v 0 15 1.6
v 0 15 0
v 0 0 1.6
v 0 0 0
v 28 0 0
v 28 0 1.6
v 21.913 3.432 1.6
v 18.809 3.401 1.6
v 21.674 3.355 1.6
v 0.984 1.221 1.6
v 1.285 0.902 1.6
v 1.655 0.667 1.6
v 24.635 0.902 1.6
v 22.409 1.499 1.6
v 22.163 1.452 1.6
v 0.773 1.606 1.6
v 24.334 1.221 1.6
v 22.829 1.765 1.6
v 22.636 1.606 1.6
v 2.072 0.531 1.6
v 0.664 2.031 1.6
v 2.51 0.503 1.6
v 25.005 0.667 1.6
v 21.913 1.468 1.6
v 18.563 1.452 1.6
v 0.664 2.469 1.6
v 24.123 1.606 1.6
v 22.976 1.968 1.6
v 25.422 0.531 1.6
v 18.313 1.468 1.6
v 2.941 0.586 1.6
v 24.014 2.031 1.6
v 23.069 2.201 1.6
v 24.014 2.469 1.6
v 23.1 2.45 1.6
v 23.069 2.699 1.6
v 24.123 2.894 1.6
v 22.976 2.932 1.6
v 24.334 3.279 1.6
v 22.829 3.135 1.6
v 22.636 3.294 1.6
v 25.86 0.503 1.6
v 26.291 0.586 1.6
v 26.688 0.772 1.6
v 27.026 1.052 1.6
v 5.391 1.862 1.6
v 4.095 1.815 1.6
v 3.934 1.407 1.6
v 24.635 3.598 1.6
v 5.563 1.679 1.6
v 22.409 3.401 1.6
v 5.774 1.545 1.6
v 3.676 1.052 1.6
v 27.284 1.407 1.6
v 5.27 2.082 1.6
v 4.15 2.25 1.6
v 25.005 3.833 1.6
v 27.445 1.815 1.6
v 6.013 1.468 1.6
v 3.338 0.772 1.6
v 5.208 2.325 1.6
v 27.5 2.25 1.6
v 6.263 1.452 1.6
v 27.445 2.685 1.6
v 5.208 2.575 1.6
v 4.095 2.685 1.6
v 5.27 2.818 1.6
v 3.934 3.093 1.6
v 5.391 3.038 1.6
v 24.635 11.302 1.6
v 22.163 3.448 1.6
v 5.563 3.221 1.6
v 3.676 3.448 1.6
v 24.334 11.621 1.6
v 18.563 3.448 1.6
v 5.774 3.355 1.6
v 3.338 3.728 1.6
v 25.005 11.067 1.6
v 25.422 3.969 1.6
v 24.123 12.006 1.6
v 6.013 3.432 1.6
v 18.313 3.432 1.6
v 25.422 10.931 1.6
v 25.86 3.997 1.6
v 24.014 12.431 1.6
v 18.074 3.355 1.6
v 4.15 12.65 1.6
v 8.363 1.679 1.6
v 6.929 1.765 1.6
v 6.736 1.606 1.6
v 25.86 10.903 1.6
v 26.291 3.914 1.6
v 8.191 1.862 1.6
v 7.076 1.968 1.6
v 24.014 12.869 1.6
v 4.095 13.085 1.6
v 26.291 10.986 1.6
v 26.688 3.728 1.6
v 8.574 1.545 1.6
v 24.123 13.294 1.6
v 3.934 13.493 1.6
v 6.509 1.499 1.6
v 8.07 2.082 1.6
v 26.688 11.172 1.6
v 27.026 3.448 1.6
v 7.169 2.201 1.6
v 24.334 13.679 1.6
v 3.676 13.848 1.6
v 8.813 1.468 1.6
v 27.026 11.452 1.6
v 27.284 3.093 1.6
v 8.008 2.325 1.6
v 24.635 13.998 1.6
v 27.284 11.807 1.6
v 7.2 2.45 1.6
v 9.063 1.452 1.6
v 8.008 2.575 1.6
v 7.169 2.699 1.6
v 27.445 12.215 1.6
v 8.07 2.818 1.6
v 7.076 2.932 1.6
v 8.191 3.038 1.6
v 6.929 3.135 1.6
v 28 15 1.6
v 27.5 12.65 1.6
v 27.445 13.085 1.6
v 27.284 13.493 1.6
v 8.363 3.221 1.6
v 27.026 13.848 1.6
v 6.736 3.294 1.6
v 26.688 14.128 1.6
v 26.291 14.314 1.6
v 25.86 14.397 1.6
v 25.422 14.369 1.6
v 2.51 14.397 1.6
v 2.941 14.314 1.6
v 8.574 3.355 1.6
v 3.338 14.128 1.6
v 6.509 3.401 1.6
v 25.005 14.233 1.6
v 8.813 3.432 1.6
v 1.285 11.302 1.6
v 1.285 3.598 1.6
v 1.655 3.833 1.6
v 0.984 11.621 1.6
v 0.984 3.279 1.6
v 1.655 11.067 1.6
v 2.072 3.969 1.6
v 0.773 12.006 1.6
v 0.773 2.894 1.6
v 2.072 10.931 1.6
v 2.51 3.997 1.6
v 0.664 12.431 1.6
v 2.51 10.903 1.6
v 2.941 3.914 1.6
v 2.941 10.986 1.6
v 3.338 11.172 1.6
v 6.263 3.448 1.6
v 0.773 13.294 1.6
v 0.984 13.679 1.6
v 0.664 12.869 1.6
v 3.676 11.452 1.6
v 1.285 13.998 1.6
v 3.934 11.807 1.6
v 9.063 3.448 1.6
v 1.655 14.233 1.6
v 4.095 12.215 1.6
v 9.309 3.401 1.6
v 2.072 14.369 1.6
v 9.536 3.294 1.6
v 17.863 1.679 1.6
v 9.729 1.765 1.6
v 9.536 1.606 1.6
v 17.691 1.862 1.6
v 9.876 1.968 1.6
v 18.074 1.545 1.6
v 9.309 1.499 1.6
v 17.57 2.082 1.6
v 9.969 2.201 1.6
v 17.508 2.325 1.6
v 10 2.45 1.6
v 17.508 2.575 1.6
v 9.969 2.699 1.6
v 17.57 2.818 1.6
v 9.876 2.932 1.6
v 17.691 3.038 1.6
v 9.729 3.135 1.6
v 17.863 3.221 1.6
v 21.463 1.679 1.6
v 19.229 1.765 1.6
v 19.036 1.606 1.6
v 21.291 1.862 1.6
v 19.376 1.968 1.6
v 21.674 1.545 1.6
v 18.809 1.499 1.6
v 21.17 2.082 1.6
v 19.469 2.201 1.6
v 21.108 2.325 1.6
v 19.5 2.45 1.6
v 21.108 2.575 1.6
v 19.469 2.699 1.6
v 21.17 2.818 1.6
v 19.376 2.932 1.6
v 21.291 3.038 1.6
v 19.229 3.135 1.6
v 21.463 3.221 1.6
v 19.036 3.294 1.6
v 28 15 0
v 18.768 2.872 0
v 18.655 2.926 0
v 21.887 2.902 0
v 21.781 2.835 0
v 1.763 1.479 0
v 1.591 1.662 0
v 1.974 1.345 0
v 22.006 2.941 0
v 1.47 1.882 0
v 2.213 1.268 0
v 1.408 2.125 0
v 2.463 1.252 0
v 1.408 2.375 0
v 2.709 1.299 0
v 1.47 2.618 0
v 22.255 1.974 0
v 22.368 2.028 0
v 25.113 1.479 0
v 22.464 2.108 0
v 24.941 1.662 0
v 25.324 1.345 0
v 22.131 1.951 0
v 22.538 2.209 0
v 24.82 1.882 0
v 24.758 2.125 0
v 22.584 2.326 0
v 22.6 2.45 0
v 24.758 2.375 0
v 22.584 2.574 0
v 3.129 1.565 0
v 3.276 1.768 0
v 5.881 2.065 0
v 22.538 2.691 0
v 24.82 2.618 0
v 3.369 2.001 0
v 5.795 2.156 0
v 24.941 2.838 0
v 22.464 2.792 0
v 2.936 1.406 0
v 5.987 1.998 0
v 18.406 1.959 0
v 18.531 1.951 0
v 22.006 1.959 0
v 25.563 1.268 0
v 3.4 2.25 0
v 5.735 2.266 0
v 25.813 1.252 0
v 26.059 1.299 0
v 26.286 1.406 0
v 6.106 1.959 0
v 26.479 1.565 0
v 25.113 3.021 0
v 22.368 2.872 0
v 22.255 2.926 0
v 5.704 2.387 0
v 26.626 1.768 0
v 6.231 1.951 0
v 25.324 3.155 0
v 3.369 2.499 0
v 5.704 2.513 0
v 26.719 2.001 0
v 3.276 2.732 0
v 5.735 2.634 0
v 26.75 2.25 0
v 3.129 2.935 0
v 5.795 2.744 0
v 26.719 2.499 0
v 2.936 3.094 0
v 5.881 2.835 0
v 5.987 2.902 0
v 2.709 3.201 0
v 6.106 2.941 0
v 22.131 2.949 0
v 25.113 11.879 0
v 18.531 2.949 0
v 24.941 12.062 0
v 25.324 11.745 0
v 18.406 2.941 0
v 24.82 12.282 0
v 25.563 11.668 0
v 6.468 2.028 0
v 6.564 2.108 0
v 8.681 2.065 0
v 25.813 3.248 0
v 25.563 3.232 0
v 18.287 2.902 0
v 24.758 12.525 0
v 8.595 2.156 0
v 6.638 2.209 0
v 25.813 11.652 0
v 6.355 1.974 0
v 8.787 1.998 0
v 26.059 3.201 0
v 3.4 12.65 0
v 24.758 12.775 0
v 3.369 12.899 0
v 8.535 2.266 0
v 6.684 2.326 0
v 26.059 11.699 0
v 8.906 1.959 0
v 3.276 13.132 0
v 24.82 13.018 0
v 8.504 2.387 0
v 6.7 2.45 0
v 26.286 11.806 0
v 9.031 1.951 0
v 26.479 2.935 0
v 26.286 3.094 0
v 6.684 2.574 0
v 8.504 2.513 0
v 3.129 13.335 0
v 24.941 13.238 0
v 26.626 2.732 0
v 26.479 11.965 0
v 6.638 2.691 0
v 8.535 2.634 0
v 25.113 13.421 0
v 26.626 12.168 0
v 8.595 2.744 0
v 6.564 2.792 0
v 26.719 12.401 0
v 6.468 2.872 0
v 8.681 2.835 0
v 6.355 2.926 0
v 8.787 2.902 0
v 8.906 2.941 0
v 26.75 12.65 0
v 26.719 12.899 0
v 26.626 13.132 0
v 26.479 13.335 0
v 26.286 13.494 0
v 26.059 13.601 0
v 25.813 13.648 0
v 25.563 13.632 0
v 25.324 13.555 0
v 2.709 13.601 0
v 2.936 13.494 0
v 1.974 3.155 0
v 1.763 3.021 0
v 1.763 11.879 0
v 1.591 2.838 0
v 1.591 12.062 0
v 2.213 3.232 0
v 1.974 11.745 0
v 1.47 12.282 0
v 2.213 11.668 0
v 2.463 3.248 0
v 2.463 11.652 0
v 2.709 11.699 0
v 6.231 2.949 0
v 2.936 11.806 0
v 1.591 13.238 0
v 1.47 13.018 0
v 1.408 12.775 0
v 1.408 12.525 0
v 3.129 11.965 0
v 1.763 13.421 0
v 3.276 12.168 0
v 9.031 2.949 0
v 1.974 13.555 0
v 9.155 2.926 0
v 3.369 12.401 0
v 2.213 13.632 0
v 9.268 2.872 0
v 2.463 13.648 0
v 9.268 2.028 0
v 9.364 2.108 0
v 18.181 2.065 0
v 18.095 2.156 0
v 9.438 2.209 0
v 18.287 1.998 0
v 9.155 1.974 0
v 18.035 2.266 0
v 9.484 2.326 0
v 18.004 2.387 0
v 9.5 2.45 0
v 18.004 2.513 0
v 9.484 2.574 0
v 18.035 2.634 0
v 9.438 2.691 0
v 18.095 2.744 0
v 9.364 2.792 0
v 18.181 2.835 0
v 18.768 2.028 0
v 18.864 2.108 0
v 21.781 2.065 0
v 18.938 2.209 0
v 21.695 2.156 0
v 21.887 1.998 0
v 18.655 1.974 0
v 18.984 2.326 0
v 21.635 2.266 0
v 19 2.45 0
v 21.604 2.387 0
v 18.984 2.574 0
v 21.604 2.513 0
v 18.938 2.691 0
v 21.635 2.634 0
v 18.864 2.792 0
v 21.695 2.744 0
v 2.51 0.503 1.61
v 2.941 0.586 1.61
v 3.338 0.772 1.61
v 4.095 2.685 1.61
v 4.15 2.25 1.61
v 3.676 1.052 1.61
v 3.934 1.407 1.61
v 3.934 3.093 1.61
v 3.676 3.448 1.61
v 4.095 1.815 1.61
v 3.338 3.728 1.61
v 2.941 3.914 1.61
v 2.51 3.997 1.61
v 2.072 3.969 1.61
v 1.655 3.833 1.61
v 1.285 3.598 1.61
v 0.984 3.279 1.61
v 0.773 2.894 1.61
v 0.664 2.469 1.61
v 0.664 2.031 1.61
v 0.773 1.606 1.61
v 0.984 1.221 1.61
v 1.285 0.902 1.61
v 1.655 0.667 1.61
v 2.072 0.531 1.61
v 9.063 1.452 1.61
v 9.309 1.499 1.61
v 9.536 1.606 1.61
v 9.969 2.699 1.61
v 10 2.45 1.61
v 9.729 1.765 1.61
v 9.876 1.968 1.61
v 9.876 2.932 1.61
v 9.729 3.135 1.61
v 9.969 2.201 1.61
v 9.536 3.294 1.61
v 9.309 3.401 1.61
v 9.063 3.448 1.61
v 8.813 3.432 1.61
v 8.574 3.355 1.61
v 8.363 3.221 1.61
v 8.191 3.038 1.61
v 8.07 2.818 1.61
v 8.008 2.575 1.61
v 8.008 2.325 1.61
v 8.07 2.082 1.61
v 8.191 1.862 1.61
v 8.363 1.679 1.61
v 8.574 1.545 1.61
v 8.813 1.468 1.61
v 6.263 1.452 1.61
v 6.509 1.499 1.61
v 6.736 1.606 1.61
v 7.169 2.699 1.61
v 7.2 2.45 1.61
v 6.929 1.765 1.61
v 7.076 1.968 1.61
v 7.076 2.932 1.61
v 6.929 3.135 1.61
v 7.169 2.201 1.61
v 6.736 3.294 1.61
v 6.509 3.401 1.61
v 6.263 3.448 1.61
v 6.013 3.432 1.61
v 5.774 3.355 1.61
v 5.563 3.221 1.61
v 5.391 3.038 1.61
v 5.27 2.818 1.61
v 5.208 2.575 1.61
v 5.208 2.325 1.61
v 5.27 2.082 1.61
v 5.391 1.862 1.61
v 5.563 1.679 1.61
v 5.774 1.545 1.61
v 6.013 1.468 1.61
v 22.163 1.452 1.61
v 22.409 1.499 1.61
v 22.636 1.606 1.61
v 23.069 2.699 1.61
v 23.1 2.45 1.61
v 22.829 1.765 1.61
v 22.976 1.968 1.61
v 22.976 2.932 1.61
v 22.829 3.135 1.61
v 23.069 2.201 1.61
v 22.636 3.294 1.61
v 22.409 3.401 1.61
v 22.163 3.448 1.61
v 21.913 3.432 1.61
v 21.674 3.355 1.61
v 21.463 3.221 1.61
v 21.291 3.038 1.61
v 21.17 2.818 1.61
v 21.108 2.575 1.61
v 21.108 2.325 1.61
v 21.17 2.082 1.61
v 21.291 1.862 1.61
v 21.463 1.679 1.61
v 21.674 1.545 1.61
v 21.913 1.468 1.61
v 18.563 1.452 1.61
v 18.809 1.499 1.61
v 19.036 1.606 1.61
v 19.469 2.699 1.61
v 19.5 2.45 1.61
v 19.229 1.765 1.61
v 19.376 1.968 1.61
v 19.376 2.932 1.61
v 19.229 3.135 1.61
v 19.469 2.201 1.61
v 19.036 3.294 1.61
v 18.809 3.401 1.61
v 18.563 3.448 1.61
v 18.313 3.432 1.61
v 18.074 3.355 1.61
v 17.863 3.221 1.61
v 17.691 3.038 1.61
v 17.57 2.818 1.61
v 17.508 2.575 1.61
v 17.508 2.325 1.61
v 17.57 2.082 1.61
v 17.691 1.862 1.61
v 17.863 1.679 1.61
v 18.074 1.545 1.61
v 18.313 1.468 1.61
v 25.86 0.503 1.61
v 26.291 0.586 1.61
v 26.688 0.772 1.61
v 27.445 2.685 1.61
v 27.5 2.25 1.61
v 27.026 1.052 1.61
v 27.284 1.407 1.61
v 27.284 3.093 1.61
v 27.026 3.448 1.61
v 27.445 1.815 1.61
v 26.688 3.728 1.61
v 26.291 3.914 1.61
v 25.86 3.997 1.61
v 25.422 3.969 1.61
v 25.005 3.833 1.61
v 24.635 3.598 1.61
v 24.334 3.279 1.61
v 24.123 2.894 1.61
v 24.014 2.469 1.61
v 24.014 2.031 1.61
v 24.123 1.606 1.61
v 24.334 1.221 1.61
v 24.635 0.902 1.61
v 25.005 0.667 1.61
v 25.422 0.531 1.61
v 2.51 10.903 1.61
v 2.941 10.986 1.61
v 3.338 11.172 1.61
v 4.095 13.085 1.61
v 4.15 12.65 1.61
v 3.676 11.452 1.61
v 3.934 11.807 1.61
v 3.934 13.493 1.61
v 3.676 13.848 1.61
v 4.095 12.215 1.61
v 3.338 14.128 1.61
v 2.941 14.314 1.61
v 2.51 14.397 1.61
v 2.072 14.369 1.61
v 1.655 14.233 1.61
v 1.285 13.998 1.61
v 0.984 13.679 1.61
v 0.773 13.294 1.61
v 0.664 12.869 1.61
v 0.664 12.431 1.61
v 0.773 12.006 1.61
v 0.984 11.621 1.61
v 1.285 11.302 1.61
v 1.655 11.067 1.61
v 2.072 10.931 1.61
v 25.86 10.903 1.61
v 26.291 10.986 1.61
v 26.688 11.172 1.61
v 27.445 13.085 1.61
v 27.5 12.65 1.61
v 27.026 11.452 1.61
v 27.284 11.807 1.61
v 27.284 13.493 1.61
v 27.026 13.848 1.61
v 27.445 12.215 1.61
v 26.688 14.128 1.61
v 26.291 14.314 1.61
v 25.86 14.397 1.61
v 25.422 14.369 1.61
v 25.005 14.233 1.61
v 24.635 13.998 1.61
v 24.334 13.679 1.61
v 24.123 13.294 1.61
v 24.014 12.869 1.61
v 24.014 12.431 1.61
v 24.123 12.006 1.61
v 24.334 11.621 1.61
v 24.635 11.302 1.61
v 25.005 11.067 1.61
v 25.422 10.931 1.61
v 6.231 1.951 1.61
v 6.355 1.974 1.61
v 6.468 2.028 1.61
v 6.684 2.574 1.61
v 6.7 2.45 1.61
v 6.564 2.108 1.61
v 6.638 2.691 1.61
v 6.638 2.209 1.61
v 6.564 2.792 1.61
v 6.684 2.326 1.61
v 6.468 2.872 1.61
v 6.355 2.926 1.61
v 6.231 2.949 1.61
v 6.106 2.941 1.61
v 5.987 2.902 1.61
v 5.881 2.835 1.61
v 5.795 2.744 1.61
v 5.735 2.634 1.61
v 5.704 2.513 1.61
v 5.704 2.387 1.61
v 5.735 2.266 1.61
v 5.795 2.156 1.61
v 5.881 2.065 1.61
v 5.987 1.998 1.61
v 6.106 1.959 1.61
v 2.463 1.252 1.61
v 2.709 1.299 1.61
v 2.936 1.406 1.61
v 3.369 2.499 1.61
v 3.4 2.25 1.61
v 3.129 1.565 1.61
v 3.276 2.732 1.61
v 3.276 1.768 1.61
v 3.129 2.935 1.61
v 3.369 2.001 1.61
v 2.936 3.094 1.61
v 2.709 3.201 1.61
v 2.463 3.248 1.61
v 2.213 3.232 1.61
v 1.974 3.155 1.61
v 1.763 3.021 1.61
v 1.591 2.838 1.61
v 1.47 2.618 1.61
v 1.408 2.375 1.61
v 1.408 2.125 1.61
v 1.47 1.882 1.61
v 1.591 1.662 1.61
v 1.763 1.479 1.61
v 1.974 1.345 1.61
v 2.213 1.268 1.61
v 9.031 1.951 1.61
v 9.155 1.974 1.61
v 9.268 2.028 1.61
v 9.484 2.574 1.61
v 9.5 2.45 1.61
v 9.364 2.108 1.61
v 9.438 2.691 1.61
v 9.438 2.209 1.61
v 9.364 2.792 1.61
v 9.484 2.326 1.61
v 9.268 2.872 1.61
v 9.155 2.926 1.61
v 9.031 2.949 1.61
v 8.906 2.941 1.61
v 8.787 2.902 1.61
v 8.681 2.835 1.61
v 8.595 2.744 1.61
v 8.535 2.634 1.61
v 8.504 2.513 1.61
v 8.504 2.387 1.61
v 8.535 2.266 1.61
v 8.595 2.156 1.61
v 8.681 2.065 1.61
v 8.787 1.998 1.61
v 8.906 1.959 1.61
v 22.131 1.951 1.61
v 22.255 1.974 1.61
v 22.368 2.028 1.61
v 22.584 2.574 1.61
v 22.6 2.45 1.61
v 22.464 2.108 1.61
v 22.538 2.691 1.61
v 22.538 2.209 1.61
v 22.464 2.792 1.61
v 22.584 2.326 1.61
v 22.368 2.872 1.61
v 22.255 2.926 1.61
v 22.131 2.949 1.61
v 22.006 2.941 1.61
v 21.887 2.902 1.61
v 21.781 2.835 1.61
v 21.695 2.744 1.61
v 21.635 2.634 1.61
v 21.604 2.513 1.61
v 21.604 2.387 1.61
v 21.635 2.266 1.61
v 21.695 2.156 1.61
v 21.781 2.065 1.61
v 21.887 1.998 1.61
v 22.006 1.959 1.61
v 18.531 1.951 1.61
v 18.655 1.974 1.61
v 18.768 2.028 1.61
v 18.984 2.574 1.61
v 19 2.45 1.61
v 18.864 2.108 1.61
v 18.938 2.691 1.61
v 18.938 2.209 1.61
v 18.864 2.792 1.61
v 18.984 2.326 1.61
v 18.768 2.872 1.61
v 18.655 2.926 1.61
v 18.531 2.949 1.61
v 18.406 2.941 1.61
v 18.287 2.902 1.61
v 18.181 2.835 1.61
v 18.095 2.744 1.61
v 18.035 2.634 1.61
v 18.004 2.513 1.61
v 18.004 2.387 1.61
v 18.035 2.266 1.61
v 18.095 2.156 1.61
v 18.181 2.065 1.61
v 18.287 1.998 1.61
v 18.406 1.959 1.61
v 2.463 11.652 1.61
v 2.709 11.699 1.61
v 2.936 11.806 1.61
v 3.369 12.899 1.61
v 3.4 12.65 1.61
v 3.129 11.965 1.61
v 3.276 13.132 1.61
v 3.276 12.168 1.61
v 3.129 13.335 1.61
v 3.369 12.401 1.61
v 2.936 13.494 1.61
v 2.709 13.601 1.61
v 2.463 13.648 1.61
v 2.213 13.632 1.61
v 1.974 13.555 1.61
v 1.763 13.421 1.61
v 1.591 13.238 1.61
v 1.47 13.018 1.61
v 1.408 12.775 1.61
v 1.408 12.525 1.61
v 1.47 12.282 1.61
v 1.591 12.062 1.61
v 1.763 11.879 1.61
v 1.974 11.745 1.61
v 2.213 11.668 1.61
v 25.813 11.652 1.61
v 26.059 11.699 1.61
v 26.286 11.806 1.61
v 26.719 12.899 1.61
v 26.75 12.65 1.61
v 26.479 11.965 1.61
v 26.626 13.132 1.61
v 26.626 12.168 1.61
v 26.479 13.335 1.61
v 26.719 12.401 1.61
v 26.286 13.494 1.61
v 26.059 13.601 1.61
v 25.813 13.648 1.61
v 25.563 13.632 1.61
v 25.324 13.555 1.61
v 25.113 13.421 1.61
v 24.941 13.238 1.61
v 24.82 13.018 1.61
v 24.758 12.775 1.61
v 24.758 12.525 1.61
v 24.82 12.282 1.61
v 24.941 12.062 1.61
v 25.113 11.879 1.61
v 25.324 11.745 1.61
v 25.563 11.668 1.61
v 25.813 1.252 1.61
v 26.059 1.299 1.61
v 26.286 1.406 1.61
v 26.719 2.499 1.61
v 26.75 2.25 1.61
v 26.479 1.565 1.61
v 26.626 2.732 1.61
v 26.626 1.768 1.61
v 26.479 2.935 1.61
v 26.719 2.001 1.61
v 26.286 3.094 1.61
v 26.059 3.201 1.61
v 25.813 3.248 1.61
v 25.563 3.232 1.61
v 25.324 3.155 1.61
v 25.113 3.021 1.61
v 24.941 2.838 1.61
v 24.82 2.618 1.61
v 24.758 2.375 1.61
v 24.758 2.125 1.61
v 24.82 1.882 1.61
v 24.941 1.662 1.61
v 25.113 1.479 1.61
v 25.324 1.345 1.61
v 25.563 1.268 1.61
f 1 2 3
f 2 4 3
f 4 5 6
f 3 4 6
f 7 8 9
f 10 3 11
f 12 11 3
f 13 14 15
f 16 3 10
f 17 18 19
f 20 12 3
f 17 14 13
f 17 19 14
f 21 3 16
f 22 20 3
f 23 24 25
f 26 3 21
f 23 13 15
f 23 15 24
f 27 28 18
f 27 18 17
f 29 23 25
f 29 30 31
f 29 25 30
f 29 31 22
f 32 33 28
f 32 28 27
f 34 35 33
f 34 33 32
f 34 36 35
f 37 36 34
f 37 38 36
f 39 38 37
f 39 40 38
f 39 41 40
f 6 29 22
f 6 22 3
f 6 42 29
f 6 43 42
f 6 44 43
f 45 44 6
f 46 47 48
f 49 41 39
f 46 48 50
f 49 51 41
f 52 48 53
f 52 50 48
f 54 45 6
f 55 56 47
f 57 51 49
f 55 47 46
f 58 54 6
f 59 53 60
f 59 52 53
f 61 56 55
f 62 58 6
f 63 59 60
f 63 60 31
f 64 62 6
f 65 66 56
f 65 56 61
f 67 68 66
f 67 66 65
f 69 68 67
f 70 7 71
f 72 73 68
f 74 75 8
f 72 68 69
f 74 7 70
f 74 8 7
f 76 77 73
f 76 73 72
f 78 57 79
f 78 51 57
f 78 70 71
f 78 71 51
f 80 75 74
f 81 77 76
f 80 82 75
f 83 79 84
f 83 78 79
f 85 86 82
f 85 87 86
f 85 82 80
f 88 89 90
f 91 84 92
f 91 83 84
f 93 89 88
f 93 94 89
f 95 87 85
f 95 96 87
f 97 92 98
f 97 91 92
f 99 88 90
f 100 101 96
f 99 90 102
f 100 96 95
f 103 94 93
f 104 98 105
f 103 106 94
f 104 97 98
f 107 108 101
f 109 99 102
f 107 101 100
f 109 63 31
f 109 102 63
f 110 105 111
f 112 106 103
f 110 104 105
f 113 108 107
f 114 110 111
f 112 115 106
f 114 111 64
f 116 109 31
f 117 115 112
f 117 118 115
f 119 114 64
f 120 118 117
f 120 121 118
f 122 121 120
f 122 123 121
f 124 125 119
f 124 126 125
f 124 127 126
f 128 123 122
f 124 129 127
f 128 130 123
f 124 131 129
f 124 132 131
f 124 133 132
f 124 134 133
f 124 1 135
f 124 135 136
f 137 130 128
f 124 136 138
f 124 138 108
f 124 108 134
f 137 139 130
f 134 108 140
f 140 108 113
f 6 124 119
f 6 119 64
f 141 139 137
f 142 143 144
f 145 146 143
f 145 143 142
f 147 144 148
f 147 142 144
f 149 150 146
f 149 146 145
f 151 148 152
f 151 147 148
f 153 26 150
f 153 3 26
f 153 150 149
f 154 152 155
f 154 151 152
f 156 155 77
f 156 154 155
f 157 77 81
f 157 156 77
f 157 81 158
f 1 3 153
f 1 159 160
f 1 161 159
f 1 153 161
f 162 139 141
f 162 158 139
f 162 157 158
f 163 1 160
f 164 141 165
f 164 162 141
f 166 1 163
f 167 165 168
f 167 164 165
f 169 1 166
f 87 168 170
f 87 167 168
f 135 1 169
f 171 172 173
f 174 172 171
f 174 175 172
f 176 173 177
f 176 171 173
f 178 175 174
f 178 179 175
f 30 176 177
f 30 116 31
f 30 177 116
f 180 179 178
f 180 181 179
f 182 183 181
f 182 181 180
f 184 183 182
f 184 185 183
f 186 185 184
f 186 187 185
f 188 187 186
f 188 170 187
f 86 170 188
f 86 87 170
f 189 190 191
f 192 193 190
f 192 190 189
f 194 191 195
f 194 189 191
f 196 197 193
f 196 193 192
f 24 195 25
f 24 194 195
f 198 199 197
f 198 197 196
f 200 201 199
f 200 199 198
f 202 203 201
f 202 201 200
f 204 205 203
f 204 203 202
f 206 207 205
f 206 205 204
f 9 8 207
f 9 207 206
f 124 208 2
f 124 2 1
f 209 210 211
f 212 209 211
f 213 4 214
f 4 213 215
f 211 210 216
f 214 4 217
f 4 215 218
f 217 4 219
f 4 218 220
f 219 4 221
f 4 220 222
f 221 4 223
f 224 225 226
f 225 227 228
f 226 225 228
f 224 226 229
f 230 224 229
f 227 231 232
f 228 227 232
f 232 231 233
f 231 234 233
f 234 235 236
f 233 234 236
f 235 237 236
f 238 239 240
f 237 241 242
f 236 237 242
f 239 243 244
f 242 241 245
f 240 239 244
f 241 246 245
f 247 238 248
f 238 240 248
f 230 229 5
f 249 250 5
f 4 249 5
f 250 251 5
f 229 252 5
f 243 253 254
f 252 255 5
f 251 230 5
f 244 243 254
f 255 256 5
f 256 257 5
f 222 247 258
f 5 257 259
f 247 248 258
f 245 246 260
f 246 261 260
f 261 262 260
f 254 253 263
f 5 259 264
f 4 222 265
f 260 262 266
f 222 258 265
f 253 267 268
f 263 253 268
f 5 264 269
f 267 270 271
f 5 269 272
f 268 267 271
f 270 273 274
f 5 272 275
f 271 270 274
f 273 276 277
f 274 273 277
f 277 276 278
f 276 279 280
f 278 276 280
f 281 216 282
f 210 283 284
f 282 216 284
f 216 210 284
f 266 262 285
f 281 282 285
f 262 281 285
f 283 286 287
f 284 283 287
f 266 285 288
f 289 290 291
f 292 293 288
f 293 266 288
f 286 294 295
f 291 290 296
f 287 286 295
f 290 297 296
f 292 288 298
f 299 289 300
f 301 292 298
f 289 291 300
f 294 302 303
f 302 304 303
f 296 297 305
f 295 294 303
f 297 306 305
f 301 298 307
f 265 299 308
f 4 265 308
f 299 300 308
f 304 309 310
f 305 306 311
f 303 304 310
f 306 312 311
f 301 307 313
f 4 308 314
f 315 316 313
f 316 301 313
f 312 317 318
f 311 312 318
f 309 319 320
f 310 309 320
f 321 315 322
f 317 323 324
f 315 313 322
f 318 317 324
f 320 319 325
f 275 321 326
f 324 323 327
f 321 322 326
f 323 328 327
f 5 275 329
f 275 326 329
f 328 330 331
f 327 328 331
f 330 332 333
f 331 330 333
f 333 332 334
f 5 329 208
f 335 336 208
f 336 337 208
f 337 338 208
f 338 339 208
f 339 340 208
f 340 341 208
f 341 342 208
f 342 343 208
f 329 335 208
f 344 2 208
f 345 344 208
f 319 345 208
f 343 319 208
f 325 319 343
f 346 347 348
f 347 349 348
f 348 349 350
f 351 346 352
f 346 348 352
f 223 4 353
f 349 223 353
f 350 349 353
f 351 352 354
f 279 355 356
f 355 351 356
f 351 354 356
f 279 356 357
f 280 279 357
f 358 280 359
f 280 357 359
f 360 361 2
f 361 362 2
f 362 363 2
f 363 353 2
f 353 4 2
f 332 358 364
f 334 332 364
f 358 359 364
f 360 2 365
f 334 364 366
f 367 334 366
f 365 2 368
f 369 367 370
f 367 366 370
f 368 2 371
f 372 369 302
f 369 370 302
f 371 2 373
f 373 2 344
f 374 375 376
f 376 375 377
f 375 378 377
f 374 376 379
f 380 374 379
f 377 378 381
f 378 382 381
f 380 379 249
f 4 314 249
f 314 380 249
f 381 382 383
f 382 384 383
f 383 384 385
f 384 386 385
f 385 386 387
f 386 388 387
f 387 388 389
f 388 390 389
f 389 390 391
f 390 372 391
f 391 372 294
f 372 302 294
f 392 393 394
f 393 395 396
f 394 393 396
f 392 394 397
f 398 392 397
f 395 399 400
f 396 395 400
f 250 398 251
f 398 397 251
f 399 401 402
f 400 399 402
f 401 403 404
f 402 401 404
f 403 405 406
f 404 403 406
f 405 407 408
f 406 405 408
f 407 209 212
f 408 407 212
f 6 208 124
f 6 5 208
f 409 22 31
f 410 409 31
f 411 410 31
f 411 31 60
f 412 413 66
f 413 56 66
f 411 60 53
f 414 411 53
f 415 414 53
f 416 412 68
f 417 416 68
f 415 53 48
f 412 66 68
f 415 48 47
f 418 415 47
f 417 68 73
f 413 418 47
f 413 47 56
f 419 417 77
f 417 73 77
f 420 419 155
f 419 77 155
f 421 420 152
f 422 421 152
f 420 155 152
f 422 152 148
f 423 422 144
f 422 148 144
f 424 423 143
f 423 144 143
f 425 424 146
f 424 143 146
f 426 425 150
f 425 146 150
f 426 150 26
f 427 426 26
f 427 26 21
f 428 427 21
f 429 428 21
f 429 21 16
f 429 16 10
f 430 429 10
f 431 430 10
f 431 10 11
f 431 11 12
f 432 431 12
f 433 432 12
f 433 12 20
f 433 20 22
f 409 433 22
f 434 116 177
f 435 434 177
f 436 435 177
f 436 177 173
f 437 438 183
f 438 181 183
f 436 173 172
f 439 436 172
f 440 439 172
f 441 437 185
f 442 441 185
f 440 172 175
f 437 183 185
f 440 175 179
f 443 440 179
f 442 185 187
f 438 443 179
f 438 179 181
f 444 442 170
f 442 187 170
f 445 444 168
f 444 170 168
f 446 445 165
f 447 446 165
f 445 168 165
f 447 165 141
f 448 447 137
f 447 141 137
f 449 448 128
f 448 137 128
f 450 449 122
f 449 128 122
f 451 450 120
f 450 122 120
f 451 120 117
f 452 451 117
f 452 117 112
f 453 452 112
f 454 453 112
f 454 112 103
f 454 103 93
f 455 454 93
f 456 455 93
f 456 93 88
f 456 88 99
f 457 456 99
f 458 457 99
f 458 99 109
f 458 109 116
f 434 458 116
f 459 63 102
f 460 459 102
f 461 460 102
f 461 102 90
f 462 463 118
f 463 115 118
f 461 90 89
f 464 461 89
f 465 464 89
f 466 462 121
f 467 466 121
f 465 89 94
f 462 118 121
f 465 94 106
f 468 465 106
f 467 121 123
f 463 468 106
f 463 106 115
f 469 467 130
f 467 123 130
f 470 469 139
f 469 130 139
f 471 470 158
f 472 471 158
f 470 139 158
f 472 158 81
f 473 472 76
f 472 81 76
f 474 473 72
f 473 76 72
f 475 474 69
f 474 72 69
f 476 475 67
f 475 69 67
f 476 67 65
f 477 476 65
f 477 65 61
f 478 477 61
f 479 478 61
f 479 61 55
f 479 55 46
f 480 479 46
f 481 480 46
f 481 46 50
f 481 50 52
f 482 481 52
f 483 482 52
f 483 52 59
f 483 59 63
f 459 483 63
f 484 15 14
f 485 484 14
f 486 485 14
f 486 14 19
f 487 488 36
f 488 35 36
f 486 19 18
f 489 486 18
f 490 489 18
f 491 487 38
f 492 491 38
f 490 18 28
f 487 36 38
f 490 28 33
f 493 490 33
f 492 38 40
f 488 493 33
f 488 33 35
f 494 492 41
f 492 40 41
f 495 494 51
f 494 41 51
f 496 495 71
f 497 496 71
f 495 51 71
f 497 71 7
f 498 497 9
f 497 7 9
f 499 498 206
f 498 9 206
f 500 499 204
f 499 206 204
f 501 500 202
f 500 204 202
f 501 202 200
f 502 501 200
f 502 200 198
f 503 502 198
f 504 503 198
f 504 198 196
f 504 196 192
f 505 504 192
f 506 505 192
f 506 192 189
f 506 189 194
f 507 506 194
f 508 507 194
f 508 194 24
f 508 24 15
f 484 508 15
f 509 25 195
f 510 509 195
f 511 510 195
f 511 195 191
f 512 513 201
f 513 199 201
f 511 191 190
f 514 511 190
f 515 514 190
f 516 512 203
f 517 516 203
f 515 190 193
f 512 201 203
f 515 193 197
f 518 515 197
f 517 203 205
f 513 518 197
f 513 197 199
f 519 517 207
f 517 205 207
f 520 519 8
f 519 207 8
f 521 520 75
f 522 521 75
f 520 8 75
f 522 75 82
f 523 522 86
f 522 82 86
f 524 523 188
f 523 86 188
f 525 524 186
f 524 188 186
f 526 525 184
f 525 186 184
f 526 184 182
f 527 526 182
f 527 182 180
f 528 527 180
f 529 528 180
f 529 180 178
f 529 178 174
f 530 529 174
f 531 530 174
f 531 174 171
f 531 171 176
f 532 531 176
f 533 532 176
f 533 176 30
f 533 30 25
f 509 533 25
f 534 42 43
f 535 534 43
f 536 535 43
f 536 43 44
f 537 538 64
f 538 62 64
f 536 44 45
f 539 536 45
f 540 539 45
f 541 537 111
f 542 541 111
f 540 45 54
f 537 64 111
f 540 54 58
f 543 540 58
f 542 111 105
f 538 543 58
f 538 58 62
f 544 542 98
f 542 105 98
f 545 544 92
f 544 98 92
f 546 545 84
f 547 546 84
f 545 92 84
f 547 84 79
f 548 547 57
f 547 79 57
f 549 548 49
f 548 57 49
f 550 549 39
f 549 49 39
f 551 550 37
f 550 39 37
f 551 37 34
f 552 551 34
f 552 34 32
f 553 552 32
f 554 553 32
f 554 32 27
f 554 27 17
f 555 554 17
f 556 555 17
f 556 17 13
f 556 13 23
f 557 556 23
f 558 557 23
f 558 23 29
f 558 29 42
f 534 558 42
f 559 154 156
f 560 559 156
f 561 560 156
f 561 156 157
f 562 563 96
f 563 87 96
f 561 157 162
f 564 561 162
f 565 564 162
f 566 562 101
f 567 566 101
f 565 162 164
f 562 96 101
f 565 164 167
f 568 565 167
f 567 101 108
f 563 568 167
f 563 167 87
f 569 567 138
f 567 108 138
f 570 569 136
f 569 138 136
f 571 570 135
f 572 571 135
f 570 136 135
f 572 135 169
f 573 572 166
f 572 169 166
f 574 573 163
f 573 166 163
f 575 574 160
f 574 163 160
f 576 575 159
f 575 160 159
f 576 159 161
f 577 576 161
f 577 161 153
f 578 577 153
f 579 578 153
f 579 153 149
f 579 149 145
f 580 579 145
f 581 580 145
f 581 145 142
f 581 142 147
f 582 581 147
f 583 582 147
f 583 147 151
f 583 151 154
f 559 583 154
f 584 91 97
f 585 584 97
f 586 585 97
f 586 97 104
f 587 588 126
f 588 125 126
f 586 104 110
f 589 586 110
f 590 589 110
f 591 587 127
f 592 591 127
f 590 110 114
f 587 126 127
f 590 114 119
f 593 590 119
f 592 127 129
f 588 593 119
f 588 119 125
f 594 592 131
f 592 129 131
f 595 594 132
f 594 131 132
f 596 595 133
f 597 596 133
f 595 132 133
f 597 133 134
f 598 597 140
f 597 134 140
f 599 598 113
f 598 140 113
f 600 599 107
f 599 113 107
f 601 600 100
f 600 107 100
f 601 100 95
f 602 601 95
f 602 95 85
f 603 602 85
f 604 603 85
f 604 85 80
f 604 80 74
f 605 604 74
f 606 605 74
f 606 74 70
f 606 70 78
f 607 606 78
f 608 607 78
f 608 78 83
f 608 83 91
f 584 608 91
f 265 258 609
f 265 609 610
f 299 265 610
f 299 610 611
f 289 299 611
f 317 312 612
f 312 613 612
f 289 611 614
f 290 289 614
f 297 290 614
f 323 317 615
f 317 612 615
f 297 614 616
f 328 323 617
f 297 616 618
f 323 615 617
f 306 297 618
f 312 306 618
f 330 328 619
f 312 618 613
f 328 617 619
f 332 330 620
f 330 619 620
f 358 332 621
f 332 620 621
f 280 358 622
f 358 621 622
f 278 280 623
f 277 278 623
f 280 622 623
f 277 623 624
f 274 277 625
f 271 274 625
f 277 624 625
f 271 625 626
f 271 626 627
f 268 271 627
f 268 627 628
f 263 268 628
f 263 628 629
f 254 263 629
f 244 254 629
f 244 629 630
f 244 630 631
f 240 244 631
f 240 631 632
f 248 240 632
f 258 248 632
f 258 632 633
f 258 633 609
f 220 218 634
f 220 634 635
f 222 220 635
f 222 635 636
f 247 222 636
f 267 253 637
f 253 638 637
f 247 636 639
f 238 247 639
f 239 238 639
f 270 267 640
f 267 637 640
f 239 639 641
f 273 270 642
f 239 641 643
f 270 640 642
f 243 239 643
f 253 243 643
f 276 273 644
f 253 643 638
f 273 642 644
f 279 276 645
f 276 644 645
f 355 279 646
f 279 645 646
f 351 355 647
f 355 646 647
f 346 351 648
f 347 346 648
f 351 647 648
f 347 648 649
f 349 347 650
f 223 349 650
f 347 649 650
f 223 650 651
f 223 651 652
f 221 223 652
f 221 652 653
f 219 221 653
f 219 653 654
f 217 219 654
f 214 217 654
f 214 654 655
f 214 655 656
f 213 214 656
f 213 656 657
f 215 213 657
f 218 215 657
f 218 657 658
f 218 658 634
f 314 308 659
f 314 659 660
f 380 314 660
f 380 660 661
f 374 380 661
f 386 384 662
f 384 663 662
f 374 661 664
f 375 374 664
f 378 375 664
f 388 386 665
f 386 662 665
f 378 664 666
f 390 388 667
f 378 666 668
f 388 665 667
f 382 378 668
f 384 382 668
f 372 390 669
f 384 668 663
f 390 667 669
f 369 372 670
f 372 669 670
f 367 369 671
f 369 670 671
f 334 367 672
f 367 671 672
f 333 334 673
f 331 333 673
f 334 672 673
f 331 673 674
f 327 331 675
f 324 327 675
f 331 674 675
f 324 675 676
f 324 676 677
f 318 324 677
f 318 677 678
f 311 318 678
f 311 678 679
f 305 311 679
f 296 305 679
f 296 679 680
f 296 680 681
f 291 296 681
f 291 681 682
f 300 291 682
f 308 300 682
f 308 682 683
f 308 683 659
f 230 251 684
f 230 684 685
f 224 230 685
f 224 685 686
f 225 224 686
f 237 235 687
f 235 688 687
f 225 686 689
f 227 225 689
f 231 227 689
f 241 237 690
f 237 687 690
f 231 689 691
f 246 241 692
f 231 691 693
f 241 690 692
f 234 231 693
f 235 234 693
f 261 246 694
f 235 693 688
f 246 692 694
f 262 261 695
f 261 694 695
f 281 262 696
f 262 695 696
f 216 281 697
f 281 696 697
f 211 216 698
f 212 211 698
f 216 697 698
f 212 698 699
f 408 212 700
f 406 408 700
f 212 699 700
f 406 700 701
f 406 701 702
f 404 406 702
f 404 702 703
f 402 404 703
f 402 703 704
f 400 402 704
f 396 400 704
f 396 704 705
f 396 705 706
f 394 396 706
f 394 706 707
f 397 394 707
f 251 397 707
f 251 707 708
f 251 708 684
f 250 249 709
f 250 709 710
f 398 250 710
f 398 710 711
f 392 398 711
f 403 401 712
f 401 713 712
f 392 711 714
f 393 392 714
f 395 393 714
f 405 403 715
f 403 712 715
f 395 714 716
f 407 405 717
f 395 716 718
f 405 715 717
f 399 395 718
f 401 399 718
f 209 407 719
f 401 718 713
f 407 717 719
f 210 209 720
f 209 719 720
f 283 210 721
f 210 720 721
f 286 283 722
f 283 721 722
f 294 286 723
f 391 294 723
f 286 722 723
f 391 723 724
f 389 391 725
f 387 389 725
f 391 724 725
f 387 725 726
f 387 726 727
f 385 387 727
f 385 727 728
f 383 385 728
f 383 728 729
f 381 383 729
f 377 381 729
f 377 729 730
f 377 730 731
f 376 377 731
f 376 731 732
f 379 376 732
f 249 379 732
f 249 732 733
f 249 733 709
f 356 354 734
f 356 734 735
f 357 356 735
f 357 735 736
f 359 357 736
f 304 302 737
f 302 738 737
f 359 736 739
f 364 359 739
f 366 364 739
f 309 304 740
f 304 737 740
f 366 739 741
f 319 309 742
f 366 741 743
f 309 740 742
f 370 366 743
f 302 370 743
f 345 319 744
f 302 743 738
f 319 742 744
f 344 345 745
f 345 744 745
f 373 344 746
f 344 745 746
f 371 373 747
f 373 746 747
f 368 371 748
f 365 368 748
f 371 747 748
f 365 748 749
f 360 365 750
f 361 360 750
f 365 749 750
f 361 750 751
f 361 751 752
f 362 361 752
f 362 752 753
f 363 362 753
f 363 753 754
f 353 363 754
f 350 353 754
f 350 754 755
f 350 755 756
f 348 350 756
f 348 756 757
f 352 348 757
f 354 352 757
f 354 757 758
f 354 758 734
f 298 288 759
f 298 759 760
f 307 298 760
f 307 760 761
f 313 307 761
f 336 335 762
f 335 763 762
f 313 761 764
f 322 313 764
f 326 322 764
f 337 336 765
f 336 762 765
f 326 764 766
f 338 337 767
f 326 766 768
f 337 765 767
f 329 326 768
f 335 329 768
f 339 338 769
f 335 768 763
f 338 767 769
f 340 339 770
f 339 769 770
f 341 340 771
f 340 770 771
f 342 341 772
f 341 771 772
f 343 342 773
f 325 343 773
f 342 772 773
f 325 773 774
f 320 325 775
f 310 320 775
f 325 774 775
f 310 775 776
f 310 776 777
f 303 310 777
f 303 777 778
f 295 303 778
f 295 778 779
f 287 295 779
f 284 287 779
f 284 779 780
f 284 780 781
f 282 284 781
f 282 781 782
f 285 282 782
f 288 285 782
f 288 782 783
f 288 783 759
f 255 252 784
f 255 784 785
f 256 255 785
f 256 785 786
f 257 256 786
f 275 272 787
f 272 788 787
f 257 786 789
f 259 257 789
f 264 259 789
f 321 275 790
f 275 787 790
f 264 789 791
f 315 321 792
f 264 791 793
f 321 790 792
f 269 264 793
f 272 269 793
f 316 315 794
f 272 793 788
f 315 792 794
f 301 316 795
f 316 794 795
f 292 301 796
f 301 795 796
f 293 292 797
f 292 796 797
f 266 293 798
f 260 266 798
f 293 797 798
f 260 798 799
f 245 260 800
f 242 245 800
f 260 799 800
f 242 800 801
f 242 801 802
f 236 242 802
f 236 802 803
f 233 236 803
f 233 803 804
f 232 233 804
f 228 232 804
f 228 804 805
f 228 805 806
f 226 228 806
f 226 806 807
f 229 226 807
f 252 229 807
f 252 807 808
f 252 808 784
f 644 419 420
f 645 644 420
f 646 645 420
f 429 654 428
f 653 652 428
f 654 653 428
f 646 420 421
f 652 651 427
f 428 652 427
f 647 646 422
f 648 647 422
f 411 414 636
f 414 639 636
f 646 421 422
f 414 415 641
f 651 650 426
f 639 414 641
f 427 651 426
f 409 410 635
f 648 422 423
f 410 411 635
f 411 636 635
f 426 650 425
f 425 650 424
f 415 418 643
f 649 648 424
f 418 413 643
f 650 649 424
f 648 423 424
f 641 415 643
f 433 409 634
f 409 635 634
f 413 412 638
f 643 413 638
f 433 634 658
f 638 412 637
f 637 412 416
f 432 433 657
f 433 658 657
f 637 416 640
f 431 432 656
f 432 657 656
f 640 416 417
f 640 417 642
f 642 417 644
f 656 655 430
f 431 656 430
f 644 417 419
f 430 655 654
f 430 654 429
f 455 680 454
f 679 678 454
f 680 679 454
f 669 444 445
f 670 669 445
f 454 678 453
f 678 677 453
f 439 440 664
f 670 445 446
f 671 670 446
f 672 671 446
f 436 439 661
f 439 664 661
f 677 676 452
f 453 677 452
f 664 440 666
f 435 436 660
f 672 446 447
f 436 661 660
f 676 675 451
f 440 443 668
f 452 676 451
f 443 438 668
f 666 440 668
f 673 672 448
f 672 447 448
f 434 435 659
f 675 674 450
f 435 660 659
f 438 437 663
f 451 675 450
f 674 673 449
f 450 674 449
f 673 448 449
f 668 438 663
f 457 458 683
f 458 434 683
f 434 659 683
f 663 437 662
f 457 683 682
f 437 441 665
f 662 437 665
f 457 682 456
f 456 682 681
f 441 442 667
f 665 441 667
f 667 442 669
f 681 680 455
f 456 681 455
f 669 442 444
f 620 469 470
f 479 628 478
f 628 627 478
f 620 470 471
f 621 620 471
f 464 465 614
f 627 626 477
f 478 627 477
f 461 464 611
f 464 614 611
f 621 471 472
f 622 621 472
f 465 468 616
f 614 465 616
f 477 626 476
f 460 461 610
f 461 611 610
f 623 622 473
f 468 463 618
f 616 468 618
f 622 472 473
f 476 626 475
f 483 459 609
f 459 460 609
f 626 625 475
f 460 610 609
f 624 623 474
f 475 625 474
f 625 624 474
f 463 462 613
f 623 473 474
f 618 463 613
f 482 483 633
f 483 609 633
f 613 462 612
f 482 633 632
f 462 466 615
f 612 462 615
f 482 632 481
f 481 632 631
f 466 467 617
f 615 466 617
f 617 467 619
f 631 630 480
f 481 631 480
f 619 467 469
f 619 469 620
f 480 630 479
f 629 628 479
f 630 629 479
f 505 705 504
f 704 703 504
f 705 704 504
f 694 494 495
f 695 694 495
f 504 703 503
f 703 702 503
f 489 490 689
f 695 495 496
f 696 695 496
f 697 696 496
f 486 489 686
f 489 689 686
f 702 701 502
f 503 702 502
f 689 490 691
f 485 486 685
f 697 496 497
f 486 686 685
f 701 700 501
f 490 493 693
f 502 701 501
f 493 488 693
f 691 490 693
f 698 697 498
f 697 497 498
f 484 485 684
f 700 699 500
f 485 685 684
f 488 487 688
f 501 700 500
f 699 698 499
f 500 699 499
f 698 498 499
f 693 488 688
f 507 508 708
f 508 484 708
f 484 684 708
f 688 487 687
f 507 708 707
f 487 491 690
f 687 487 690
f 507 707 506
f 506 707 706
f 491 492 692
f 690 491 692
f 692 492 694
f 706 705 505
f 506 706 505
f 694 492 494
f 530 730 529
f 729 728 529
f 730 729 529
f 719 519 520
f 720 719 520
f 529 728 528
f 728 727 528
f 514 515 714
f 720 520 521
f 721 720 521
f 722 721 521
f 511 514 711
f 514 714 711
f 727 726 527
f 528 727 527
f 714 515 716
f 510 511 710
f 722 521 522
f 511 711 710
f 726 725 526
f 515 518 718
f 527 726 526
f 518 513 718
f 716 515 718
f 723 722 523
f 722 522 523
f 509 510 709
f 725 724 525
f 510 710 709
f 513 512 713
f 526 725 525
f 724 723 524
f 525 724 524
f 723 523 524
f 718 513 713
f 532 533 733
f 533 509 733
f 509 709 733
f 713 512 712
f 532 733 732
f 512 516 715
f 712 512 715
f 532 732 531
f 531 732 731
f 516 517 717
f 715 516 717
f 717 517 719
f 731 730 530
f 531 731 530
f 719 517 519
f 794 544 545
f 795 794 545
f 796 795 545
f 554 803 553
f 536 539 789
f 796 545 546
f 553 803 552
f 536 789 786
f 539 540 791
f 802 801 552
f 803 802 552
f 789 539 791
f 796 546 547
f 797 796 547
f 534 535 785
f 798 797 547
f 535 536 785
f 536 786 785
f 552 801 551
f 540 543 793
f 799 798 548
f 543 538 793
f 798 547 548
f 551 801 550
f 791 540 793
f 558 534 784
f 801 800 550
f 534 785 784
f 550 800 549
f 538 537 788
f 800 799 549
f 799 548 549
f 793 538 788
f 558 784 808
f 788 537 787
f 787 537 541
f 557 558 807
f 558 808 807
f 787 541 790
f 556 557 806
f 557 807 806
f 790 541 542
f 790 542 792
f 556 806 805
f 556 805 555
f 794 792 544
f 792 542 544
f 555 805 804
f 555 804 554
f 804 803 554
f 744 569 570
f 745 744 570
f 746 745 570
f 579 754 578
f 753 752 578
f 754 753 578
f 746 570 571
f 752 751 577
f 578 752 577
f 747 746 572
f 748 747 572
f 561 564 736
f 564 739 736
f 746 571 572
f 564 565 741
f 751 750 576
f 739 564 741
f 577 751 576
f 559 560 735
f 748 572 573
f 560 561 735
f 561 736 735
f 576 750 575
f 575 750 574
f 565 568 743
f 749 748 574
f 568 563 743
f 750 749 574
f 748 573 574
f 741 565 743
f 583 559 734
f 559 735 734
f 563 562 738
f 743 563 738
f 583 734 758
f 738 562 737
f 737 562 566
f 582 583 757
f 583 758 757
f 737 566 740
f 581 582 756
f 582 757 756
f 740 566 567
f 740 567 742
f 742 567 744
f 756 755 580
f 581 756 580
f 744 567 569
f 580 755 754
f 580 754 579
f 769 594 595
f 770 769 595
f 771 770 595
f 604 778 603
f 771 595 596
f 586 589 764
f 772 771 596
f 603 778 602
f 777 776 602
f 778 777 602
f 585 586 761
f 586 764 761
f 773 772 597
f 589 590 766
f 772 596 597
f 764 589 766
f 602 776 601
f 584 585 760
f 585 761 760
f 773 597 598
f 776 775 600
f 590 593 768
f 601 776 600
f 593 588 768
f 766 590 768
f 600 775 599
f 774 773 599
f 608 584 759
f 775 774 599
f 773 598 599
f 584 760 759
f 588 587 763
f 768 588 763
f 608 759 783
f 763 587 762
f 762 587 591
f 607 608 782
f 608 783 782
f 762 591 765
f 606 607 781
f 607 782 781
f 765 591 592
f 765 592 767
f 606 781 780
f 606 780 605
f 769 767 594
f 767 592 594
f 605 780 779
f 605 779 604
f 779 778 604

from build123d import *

# Parameters (mm, degrees)
BOX_W         = 28
BOX_H         = 15
BOX_DEPTH     = 1.6
SKETCH_R      = 1.75
SKETCH_R_2    = 1
PAD_DEPTH     = 0.01
SKETCH001_R   = 1
SKETCH001_R_2 = 0.5
POCKET_DEPTH  = 1.611


with BuildPart() as part:
    # Box → Box (new body)
    with BuildSketch(Plane.XY):
        with Locations((14, 7.5)):
            Rectangle(BOX_W, BOX_H)
    extrude(amount=BOX_DEPTH)

    # Sketch → Pad (new body)
    with BuildSketch(Plane.XY.offset(1.6)):
        with Locations((2.4, 2.25)):
            Circle(SKETCH_R)
        with Locations((25.75, 2.25)):
            Circle(SKETCH_R)
        with Locations((2.4, 12.65)):
            Circle(SKETCH_R)
        with Locations((25.75, 12.65)):
            Circle(SKETCH_R)
        with Locations((6.2, 2.45)):
            Circle(SKETCH_R_2)
        with Locations((9, 2.45)):
            Circle(SKETCH_R_2)
        with Locations((18.5, 2.45)):
            Circle(SKETCH_R_2)
        with Locations((22.1, 2.45)):
            Circle(SKETCH_R_2)
    extrude(amount=PAD_DEPTH)

    # Sketch001 → Pocket (cut, through all)
    with BuildSketch(Plane.XY.offset(1.61)):
        with Locations((2.4, 2.25)):
            Circle(SKETCH001_R)
        with Locations((2.4, 12.65)):
            Circle(SKETCH001_R)
        with Locations((25.75, 12.65)):
            Circle(SKETCH001_R)
        with Locations((25.75, 2.25)):
            Circle(SKETCH001_R)
        with Locations((6.2, 2.45)):
            Circle(SKETCH001_R_2)
        with Locations((9, 2.45)):
            Circle(SKETCH001_R_2)
        with Locations((18.5, 2.45)):
            Circle(SKETCH001_R_2)
        with Locations((22.1, 2.45)):
            Circle(SKETCH001_R_2)
    extrude(amount=-POCKET_DEPTH, mode=Mode.SUBTRACT)


solid = part.part
